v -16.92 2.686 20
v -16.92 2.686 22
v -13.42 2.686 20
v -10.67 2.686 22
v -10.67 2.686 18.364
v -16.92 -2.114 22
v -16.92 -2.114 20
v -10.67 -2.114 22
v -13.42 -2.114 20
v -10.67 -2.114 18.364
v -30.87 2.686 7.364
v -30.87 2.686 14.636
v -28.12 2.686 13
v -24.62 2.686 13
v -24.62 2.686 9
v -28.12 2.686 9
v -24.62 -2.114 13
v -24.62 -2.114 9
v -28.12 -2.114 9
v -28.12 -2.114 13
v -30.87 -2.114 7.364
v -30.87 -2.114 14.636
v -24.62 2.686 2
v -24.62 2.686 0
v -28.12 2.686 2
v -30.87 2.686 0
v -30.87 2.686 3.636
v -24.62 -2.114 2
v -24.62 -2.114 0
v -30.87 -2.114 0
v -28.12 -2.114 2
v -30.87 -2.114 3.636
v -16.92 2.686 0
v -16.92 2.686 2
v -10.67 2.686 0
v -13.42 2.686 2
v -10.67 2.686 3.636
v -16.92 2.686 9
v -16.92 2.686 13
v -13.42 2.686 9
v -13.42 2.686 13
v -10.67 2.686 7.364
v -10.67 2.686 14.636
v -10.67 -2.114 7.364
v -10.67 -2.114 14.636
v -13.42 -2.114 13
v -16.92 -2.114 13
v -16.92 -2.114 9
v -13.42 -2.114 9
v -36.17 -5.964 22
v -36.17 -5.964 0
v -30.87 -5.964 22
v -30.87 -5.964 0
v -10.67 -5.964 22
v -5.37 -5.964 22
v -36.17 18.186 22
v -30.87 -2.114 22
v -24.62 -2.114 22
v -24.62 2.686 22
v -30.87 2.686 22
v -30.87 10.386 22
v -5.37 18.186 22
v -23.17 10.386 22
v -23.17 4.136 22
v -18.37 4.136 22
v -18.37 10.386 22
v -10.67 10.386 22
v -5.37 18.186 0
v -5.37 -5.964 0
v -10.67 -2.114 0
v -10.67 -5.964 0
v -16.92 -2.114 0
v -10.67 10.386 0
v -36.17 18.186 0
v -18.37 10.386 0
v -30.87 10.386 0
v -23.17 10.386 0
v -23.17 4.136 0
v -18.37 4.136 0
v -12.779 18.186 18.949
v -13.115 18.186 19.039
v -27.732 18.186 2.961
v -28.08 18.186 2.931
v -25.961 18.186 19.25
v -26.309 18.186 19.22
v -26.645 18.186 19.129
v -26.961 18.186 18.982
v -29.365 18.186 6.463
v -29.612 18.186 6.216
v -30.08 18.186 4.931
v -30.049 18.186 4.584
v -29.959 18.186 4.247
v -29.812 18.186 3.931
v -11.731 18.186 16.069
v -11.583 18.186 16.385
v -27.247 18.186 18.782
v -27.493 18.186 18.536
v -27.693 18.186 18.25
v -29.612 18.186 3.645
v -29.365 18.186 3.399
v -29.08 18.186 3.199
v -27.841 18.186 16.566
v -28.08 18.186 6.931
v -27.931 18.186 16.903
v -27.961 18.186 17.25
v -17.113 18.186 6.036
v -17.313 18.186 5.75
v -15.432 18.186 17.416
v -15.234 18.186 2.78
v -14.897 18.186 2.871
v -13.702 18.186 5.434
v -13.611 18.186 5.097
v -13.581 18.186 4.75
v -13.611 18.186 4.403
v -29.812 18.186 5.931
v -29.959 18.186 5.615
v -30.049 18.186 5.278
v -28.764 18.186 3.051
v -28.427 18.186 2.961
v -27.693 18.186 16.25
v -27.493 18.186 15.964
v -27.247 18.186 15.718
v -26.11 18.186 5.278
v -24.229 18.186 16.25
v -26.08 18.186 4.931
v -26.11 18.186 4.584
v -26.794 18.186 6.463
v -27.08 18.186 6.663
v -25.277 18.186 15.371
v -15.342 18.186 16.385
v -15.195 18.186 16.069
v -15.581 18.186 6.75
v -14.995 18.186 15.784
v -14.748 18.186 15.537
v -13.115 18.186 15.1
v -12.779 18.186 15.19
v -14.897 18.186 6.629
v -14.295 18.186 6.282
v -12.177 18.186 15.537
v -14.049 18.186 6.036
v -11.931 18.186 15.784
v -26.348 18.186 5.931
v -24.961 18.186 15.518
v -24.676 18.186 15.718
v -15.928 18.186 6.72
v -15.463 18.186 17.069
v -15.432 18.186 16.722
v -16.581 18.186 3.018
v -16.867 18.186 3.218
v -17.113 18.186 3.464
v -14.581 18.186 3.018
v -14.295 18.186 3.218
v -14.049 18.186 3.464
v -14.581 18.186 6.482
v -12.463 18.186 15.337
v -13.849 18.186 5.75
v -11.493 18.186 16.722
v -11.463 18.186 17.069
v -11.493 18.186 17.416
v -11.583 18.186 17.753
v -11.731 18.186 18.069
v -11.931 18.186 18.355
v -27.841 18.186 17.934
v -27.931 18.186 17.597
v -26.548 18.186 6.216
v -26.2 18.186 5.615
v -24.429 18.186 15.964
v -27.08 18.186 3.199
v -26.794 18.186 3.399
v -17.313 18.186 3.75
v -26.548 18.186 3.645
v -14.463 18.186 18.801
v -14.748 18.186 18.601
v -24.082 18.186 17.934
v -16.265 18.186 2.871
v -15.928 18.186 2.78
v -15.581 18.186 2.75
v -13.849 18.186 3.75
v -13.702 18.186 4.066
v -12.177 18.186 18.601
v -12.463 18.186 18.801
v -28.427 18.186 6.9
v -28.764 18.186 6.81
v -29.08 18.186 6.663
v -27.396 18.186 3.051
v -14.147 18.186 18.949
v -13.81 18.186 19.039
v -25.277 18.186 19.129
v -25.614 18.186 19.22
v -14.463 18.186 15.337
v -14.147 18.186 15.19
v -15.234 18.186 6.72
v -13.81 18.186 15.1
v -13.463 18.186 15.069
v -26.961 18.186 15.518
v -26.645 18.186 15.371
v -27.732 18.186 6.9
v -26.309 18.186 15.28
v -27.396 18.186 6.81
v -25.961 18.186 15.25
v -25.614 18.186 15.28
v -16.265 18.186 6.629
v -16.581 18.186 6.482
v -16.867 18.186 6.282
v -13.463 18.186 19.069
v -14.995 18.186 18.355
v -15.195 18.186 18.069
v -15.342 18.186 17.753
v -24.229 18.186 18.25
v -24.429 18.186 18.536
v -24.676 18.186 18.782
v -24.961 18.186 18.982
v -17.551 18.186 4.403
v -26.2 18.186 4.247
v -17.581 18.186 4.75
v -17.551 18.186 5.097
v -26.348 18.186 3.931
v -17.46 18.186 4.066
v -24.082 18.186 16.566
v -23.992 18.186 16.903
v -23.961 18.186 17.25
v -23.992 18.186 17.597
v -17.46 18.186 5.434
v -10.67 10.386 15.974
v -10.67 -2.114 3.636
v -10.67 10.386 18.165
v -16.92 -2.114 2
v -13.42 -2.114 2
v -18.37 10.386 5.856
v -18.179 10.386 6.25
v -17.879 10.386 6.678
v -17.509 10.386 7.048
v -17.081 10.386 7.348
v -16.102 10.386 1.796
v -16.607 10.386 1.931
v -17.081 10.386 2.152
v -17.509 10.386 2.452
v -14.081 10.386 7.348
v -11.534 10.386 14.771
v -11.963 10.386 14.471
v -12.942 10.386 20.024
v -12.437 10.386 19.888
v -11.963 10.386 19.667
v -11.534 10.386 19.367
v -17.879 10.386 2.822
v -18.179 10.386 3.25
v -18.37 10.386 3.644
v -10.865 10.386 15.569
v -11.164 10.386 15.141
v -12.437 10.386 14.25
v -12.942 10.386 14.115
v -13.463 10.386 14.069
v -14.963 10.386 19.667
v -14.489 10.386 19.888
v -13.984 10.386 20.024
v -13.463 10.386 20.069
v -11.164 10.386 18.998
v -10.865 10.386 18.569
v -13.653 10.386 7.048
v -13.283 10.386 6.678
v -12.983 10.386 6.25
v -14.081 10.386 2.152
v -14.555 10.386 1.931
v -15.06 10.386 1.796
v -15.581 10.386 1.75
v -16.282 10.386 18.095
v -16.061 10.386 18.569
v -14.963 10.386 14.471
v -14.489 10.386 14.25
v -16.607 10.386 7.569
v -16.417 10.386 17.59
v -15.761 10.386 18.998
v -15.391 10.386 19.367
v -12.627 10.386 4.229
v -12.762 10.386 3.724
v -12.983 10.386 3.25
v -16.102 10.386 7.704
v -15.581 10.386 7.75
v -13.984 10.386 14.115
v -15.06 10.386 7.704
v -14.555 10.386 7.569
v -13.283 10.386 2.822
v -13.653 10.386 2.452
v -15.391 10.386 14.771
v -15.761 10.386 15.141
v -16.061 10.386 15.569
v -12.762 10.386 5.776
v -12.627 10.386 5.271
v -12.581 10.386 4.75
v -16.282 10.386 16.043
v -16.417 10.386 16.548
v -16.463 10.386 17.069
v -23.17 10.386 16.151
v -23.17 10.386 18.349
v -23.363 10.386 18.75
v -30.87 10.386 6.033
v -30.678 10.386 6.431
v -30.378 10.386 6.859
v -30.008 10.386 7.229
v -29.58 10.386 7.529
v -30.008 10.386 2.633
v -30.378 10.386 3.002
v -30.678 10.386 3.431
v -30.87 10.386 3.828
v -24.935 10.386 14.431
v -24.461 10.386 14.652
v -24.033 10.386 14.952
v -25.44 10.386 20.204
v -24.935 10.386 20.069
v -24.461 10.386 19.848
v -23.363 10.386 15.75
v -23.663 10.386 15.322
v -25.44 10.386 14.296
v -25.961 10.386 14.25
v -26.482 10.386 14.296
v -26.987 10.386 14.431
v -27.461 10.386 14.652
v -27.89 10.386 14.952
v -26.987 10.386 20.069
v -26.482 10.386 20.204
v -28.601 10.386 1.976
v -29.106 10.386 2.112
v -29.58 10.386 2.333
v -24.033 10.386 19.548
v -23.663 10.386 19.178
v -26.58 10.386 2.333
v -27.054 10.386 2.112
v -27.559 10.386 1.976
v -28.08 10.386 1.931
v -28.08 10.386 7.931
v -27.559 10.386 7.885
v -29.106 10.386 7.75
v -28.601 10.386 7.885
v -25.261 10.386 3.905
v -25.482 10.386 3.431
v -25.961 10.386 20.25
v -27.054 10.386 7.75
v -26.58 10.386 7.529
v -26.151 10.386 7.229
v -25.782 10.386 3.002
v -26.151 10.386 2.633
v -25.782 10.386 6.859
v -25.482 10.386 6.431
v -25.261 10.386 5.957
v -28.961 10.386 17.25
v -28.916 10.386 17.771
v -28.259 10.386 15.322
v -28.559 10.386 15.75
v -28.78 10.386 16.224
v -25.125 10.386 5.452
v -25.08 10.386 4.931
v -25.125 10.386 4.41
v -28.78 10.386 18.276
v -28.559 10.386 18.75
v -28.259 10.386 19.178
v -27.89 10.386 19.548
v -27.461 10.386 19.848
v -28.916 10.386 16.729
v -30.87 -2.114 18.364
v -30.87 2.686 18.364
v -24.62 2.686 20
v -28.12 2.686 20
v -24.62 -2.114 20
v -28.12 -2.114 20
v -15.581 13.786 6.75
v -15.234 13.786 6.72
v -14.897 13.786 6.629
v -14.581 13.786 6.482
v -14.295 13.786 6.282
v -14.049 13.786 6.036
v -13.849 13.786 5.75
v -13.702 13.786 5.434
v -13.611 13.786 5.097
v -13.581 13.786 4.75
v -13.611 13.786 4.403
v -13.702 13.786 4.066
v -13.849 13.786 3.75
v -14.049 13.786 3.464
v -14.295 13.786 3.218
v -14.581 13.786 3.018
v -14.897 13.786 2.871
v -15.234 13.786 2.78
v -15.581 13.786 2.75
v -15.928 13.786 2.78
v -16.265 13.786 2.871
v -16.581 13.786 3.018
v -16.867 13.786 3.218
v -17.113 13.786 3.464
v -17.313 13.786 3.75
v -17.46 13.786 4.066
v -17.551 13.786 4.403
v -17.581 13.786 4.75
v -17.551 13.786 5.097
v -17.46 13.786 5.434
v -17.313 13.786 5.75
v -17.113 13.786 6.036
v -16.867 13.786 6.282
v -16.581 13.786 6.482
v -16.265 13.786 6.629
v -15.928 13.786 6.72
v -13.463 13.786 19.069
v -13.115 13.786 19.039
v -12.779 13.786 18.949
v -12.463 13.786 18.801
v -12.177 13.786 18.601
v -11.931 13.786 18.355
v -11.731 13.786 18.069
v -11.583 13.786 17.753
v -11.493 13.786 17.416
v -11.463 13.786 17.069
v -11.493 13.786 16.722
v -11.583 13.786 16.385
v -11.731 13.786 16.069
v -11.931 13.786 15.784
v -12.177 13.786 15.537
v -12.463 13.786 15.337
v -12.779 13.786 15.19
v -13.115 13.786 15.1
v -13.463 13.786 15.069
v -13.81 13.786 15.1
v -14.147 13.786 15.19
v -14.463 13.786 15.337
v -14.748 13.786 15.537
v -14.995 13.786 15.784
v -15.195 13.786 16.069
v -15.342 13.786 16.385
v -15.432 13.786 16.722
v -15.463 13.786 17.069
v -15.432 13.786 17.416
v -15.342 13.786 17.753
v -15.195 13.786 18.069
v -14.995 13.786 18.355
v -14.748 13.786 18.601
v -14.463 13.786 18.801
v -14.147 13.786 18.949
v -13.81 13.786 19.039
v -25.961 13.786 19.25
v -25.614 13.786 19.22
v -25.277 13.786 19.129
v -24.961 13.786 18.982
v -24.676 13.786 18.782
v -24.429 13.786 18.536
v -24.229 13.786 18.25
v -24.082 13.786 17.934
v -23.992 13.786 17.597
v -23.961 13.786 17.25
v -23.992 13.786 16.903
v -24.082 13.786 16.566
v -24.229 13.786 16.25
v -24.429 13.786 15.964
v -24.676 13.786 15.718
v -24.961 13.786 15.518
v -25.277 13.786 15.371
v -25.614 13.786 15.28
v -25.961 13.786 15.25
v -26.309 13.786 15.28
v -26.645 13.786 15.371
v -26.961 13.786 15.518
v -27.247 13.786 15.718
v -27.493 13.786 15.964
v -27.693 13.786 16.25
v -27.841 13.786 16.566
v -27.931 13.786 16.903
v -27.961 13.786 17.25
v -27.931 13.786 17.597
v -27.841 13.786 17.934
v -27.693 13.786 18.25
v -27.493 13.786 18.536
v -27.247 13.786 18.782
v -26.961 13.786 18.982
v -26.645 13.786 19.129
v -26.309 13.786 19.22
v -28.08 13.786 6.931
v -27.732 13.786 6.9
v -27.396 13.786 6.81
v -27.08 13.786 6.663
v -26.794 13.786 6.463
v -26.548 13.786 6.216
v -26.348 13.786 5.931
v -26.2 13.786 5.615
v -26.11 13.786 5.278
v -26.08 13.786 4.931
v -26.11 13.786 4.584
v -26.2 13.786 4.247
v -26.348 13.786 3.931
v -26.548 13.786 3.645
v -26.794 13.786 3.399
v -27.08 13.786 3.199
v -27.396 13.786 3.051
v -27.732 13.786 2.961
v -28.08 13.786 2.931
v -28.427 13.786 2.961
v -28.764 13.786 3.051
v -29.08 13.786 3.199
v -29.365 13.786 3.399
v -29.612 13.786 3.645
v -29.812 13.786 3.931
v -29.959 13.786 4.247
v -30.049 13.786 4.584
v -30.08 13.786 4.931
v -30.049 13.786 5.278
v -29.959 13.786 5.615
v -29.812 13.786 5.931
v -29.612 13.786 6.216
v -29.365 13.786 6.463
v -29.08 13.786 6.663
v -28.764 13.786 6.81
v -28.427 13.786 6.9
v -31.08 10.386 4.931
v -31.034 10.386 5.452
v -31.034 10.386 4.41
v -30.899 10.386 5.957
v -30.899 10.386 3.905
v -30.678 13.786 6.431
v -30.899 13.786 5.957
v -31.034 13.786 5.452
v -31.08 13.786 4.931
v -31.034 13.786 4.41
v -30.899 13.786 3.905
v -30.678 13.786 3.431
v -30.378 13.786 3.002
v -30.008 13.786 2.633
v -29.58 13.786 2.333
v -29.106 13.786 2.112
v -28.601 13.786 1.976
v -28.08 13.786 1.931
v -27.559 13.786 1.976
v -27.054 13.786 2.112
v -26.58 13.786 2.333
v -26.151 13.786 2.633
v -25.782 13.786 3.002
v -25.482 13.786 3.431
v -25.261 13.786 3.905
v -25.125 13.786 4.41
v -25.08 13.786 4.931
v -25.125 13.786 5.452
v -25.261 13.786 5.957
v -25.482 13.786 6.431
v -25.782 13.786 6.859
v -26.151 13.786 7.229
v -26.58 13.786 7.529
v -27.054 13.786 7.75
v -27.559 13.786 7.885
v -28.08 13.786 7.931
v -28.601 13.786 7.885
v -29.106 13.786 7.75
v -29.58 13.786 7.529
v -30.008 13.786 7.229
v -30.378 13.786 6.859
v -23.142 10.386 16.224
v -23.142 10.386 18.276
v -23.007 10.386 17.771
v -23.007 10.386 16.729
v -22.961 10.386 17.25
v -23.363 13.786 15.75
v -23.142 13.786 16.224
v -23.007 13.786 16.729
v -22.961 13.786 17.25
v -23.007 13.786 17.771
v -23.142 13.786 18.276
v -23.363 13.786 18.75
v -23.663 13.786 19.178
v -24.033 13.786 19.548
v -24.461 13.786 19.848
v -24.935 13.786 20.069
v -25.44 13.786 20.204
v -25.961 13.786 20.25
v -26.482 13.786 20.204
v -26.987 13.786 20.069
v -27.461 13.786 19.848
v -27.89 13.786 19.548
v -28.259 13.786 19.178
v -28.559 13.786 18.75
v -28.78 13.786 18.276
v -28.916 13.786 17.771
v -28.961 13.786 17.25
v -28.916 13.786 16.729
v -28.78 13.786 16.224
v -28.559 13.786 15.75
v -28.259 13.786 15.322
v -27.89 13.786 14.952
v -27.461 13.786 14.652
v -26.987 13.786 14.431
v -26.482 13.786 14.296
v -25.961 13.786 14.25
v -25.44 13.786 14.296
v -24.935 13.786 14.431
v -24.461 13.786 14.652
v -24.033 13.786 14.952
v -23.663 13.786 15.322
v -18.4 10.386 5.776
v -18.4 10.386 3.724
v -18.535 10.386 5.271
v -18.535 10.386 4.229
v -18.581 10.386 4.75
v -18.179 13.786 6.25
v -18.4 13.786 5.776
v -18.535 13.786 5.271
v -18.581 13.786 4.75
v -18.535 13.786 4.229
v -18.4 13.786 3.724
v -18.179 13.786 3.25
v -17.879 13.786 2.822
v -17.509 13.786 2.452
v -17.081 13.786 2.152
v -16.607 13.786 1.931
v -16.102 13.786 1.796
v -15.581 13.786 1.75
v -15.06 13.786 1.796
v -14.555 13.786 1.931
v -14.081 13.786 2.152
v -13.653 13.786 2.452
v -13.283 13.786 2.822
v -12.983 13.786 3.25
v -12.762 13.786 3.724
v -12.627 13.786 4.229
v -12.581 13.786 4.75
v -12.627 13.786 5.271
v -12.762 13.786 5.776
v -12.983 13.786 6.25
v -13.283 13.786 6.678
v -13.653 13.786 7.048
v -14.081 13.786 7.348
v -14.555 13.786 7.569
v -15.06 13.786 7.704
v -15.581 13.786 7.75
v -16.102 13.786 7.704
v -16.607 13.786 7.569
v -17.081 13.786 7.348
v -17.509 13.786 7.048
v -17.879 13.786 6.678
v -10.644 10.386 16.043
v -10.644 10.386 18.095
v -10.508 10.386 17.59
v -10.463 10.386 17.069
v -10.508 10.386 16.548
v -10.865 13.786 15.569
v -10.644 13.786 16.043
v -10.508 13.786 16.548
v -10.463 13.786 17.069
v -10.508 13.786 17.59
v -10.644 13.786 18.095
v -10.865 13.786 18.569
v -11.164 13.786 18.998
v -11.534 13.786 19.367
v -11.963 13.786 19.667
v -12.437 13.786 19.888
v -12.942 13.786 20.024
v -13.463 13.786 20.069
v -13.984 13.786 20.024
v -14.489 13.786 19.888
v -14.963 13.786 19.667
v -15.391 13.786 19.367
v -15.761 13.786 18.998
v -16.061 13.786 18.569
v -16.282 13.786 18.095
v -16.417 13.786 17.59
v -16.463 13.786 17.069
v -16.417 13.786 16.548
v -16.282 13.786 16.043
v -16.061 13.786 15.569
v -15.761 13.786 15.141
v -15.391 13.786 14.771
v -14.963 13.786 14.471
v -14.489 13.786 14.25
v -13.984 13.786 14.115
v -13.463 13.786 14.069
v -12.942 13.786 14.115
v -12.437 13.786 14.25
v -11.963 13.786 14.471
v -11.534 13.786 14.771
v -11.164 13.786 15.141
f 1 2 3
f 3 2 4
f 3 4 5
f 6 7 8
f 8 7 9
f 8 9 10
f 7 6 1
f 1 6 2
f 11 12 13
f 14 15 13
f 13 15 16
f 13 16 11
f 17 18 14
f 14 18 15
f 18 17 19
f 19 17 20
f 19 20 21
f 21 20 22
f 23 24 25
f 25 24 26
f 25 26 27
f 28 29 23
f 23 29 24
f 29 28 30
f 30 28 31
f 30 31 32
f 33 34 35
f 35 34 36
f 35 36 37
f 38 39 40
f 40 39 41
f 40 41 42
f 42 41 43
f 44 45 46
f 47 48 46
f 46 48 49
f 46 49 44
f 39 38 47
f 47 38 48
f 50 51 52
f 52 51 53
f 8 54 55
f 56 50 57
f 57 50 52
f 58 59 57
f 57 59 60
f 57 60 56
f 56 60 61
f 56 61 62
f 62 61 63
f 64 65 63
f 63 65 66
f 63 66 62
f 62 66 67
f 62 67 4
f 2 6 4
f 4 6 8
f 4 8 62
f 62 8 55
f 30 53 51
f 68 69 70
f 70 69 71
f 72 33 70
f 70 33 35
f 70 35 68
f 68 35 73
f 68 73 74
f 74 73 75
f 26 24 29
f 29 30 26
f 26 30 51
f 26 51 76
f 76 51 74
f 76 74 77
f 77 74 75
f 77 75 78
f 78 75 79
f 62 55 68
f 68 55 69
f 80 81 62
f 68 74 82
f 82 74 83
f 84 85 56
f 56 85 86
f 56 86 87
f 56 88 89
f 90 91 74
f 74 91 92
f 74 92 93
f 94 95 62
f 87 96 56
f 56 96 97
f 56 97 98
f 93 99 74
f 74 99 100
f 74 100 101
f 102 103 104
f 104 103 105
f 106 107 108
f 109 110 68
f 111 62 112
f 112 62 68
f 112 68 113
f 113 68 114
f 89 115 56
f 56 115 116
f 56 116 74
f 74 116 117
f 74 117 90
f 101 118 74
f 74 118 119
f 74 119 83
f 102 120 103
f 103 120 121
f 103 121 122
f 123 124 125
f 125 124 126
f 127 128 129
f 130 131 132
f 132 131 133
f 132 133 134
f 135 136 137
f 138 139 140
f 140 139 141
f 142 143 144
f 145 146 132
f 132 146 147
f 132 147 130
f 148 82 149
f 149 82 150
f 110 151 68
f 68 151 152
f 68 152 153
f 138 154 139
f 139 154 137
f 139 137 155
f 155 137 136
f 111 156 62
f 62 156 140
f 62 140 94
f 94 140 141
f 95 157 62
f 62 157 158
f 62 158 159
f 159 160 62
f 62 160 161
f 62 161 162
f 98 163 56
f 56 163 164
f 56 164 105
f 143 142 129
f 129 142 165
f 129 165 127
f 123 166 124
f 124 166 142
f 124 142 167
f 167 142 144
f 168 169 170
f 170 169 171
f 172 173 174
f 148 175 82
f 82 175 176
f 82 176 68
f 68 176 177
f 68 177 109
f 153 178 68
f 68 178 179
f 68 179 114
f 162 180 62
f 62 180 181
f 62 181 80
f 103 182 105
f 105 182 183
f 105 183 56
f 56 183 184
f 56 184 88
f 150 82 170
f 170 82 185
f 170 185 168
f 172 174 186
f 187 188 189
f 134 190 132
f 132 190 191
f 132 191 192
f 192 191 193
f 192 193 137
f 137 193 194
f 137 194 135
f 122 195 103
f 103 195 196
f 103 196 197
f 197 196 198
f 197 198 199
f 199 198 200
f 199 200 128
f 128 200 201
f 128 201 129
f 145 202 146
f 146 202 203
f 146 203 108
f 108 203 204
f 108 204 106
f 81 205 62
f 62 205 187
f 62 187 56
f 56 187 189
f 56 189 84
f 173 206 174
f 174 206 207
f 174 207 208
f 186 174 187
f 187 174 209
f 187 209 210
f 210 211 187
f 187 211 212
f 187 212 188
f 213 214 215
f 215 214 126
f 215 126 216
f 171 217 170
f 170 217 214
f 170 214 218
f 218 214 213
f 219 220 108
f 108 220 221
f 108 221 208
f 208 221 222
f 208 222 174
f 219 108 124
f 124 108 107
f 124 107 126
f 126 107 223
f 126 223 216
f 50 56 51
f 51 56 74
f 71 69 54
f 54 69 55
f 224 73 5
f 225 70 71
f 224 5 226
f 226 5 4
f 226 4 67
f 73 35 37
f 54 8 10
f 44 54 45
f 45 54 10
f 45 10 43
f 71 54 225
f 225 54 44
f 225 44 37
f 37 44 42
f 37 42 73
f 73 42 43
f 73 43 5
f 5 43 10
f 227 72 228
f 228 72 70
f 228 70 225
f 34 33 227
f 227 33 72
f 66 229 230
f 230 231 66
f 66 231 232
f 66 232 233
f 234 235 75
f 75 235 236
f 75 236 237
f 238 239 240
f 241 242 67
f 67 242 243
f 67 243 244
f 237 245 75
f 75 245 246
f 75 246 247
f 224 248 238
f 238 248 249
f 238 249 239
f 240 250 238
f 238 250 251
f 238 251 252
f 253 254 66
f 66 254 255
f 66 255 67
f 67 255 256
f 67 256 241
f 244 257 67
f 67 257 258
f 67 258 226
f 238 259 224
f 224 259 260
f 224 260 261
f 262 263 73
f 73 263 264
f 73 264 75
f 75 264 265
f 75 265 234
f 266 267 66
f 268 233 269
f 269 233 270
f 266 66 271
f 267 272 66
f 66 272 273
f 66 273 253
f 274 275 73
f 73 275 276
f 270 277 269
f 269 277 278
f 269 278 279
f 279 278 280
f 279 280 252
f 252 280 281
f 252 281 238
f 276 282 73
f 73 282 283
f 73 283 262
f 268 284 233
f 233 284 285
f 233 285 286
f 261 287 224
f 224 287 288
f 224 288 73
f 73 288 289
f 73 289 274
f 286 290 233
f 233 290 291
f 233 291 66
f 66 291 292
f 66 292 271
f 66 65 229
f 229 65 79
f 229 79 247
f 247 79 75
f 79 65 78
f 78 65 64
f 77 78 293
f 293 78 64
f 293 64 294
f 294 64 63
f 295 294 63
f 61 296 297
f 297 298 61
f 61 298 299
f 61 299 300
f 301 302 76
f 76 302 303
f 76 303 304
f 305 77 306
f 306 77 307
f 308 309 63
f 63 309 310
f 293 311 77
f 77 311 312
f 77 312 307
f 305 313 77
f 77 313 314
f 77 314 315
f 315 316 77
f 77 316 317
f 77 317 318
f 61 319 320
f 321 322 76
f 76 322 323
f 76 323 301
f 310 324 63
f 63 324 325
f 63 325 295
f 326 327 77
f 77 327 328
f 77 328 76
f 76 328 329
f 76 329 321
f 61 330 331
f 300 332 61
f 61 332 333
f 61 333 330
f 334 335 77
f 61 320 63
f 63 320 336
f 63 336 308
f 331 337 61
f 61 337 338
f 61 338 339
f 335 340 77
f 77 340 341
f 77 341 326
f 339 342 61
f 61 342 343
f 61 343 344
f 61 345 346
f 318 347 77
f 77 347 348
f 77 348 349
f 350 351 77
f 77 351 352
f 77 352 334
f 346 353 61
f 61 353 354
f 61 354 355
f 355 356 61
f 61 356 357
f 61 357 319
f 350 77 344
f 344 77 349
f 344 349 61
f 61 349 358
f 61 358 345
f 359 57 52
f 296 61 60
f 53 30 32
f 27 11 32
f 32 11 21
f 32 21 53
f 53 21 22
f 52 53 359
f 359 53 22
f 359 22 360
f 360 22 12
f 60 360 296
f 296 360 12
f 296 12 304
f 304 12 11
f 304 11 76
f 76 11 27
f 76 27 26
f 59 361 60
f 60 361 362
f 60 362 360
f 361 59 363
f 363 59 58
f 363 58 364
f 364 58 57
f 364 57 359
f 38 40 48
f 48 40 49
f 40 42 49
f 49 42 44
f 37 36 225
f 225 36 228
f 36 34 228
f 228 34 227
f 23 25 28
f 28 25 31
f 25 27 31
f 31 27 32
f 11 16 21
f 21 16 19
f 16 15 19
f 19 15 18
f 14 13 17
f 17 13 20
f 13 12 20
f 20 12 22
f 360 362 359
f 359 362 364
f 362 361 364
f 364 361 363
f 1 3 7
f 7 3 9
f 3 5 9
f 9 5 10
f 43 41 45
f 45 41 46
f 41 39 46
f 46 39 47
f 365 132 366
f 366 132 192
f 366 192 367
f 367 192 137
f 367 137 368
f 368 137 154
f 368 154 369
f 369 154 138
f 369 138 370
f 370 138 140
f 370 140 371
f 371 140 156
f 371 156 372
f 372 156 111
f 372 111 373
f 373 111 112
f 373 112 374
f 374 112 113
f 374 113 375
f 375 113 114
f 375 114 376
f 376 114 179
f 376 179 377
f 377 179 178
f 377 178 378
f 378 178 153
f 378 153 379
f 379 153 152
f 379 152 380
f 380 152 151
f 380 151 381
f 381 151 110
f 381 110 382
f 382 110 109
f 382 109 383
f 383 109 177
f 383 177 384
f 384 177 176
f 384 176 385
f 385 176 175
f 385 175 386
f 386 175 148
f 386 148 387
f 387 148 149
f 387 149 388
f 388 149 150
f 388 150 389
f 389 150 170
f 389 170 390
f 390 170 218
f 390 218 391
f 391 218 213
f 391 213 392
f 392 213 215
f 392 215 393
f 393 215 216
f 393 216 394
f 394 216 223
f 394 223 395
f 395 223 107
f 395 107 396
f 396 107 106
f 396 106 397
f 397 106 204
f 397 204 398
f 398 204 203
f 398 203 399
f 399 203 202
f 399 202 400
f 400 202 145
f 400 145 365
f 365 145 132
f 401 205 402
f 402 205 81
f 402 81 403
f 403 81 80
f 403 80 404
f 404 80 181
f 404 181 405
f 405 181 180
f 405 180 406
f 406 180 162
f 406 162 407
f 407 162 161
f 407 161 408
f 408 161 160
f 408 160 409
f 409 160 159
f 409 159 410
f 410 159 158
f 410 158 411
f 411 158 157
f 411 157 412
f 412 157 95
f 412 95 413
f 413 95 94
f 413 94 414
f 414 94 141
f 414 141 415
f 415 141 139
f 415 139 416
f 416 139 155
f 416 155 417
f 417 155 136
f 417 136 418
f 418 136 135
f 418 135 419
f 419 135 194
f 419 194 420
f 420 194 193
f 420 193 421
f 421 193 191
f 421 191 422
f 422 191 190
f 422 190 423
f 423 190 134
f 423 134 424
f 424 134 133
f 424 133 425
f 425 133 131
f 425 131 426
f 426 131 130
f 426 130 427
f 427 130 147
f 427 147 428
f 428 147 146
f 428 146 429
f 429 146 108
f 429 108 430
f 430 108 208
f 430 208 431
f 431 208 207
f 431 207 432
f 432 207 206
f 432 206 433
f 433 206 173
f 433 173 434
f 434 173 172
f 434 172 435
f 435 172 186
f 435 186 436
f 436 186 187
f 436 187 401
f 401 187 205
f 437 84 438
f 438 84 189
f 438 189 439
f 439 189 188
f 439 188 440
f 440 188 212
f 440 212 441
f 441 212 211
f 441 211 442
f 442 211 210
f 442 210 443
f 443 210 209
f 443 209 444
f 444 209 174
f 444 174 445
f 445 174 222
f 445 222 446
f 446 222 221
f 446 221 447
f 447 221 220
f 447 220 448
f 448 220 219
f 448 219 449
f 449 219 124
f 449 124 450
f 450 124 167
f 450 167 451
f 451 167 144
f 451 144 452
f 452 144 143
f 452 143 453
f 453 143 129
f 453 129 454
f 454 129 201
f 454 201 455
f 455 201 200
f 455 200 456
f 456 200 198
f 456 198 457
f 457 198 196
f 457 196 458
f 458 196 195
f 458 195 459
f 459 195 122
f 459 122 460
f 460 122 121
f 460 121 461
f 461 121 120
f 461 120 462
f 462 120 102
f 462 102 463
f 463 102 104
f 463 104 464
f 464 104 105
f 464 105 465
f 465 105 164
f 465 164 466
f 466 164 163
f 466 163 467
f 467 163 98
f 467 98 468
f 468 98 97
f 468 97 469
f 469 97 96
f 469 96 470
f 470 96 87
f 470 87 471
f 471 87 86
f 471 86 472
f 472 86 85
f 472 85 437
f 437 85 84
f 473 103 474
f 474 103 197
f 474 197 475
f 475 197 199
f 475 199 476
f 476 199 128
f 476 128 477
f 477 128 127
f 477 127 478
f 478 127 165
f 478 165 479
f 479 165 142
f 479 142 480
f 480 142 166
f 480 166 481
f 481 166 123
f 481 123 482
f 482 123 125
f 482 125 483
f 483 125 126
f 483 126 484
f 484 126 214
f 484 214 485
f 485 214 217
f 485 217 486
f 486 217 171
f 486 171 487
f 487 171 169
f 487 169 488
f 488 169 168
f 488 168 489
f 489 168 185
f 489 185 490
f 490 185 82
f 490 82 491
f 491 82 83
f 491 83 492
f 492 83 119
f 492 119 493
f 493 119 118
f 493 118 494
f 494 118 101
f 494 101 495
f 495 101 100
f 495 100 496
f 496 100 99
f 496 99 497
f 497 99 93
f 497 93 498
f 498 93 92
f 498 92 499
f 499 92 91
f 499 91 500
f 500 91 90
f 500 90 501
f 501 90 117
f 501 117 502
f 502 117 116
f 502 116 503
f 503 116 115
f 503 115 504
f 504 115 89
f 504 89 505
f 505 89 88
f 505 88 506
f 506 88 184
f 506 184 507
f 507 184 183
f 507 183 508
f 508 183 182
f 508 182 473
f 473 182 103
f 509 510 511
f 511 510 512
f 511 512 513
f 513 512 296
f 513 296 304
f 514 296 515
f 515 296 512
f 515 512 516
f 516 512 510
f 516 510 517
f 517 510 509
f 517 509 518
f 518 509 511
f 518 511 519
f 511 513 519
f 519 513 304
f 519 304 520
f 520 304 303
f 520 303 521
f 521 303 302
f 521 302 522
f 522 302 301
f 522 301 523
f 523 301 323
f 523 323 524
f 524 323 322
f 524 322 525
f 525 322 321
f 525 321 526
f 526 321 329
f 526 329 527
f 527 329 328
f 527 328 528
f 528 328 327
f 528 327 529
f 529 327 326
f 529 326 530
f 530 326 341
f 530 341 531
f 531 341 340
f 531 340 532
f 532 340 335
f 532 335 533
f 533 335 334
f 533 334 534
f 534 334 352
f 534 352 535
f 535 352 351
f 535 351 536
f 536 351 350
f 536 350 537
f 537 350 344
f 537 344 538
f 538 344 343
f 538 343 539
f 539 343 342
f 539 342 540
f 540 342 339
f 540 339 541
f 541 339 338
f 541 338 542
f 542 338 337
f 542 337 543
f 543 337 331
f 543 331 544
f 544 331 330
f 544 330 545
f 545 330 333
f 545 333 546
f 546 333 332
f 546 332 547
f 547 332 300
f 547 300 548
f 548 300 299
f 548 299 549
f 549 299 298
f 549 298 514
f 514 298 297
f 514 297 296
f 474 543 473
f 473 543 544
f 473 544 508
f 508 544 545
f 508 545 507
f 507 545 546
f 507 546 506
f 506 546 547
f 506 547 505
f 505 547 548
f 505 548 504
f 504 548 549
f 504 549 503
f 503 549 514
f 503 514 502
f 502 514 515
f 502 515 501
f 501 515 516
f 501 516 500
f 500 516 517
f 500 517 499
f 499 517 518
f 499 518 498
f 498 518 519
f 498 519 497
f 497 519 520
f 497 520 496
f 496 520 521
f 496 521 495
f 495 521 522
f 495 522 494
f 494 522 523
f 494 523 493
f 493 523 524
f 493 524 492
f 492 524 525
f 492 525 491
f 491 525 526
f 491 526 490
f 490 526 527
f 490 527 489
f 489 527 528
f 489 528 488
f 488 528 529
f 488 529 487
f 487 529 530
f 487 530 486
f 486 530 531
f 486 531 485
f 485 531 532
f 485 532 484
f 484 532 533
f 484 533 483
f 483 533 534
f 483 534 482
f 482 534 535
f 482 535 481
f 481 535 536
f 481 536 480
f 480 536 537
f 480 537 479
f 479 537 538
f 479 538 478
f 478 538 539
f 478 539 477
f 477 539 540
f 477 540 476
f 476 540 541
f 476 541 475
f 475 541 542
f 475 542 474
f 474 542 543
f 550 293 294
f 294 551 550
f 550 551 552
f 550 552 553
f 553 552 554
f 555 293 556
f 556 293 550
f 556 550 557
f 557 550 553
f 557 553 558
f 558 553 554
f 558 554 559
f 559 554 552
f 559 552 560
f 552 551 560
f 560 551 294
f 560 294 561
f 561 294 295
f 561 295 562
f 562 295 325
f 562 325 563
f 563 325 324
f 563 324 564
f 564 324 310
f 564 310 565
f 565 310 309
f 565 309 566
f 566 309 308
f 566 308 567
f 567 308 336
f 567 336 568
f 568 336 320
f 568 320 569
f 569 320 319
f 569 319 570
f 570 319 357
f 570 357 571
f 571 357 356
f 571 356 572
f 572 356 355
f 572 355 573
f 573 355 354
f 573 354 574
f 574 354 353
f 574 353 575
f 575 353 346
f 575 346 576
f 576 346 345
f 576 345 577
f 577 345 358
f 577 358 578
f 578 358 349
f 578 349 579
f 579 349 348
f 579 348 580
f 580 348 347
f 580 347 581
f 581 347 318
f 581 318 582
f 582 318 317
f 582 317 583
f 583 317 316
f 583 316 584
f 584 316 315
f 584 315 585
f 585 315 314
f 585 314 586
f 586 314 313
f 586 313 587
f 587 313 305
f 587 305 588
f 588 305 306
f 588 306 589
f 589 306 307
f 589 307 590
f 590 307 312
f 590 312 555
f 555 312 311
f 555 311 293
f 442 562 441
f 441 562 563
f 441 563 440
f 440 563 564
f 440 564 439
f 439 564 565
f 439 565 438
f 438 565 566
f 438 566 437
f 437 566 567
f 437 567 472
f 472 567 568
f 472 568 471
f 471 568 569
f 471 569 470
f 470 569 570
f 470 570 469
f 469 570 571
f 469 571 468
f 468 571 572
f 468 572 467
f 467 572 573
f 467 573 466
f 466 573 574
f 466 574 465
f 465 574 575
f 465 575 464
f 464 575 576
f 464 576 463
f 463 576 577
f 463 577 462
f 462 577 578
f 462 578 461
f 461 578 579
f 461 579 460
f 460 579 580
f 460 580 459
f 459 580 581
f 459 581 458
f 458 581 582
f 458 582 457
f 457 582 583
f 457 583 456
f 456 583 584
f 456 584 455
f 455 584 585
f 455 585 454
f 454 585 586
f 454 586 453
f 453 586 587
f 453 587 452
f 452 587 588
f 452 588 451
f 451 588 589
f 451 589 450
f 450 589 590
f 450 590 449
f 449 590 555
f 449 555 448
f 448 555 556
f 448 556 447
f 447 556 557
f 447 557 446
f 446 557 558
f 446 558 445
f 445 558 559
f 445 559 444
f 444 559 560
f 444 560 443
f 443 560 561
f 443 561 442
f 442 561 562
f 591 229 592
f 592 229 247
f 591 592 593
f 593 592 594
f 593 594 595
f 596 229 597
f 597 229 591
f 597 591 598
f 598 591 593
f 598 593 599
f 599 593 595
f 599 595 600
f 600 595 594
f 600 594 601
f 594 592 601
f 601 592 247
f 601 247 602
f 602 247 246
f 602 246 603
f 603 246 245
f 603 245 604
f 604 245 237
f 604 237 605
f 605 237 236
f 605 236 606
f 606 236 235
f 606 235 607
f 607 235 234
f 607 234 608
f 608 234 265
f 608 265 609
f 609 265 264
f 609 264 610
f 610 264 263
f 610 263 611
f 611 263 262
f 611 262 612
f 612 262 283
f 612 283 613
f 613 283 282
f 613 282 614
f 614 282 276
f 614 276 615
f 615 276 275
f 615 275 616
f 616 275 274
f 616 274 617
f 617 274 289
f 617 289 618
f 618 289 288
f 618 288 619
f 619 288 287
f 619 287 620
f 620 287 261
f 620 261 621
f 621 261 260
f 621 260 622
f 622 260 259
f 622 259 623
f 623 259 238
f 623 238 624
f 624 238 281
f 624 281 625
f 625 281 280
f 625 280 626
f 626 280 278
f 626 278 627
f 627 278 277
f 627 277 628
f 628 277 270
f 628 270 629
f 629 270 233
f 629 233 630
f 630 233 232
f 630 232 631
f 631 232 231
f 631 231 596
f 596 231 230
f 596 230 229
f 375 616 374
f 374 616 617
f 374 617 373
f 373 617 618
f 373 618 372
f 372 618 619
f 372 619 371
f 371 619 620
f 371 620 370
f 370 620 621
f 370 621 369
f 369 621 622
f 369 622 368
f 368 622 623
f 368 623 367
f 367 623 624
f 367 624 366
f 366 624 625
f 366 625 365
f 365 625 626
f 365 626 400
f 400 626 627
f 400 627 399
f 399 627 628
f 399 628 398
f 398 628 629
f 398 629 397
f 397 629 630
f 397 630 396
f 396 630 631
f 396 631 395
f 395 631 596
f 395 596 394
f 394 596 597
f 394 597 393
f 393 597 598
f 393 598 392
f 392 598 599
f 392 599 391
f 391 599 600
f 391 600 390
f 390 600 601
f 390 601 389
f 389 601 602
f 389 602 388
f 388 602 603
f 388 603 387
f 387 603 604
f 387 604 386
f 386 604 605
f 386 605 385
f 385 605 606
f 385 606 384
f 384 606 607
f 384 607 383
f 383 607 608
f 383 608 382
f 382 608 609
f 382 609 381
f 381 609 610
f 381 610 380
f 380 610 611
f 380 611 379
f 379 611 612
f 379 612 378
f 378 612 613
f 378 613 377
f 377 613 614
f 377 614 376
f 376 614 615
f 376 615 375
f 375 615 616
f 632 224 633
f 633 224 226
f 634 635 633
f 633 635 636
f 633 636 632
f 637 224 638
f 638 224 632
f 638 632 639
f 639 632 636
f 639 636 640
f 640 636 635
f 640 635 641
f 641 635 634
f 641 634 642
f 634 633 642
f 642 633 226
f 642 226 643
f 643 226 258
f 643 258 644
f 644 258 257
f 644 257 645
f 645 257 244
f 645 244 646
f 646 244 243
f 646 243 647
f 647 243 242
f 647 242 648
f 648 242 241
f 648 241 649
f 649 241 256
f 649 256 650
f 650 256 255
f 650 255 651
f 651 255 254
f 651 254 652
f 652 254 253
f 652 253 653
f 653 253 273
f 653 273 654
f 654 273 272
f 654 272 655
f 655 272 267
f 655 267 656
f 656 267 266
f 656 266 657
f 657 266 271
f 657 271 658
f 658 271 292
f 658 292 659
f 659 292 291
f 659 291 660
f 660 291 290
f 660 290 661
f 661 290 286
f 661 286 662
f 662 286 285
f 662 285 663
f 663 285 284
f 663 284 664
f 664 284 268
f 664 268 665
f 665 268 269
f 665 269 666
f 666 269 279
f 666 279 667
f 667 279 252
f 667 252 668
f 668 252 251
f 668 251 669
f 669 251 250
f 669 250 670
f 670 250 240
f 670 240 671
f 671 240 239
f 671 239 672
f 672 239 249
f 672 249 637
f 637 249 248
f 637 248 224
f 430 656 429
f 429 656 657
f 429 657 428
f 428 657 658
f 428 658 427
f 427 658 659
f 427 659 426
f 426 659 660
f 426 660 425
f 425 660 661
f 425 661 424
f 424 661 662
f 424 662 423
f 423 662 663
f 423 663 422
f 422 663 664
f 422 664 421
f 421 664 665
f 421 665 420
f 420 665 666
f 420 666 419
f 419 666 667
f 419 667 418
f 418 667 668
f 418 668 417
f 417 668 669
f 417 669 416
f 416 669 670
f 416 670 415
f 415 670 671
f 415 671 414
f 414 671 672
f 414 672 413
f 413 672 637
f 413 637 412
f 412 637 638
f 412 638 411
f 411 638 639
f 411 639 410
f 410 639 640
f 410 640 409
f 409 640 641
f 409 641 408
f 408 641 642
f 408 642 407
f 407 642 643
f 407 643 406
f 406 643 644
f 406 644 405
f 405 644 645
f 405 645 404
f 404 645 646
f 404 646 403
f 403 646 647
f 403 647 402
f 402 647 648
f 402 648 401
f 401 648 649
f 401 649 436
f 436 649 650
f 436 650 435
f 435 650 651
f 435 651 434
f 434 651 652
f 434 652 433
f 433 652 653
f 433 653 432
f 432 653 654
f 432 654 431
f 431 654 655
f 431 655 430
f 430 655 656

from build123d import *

# Parameters (mm, degrees)
ESQUISSE1_W                   = 30.8
ESQUISSE1_H                   = 24.15
BOSS_EXTRU_1_DEPTH            = 22
ENL_V_START                   = -22
ENL_V_MAT_EXTRU_2_DEPTH       = 22
ENL_V_MAT_EXTRU_14_DEPTH      = 47.950397903
ENL_V_MAT_EXTRU_14_DEPTH_BACK = 4.8
ENL_V_MAT_EXTRU_19_DEPTH      = 4.8
ENL_V_MAT_EXTRU_20_DEPTH      = 4.8
ENL_V_MAT_EXTRU_21_DEPTH      = 4.8
ESQUISSE17_R                  = 2
ENL_V_MAT_EXTRU_22_DEPTH      = 4.4
ESQUISSE18_R                  = 3
ENL_V_MAT_EXTRU_24_DEPTH      = 3.4
ESQUISSE19_R                  = 3
ENL_V_MAT_EXTRU_29_DEPTH      = 3.4
ESQUISSE22_R                  = 3
ENL_V_MAT_EXTRU_30_DEPTH      = 3.4
ESQUISSE23_R                  = 3
ENL_V_MAT_EXTRU_31_DEPTH      = 3.4


# Read off the part's stored shape, not the designer's step: Enlèv. mat.-Extru.2
with BuildPart() as part:
    # Esquisse1 → Boss.-Extru.1 (new body)
    with BuildSketch(Plane.XY):
        with Locations((-20.769736842, 6.111184211)):
            Rectangle(ESQUISSE1_W, ESQUISSE1_H)
    extrude(amount=BOSS_EXTRU_1_DEPTH)

    # Enlèv. mat.-Extru.2 outline → Enlèv. mat.-Extru.2 (cut)
    with BuildSketch(Plane.XY.offset(22).offset(ENL_V_START)):
        Polygon((-30.869736842, -5.963815789), (-10.669736842, -5.963815789), (-10.669736842, -2.113815789), (-16.919736842, -2.113815789), (-16.919736842, 2.686184211), (-10.669736842, 2.686184211), (-10.669736842, 10.386184211), (-18.369736842, 10.386184211), (-18.369736842, 4.136184211), (-23.169736842, 4.136184211), (-23.169736842, 10.386184211), (-30.869736842, 10.386184211), (-30.869736842, 2.686184211), (-24.619736842, 2.686184211), (-24.619736842, -2.113815789), (-30.869736842, -2.113815789), align=None)
    extrude(amount=ENL_V_MAT_EXTRU_2_DEPTH, mode=Mode.SUBTRACT)

    # Esquisse12 → Enlèv. mat.-Extru.14 (cut, two sides: drawn at the far end of the back side and taken through both)
    with BuildSketch(Plane(origin=(0, -2.113815789, 0), x_dir=(-1, 0, 0), z_dir=(0, -1, 0)).offset(-ENL_V_MAT_EXTRU_14_DEPTH_BACK)):
        Polygon((16.919736842, -9), (16.919736842, -2), (13.419736842, -2), (10.669736842, -3.636306817), (10.669736842, -7.363693183), (13.419736842, -9), align=None)
    extrude(amount=ENL_V_MAT_EXTRU_14_DEPTH + ENL_V_MAT_EXTRU_14_DEPTH_BACK, mode=Mode.SUBTRACT)

    # Esquisse13 → Enlèv. mat.-Extru.19 (cut)
    with BuildSketch(Plane(origin=(0, -2.113815789, 0), x_dir=(-1, 0, 0), z_dir=(0, -1, 0))):
        Polygon((24.619736842, -2), (28.119736842, -2), (30.869736842, -3.636306817), (30.869736842, -7.363693183), (28.119736842, -9), (24.619736842, -9), align=None)
    extrude(amount=-ENL_V_MAT_EXTRU_19_DEPTH, mode=Mode.SUBTRACT)

    # Esquisse14 → Enlèv. mat.-Extru.20 (cut)
    with BuildSketch(Plane(origin=(0, -2.113815789, 0), x_dir=(-1, 0, 0), z_dir=(0, -1, 0))):
        Polygon((24.619736842, -20), (28.119736842, -20), (30.869736842, -18.363693183), (30.869736842, -14.636306817), (28.119736842, -13), (24.619736842, -13), align=None)
    extrude(amount=-ENL_V_MAT_EXTRU_20_DEPTH, mode=Mode.SUBTRACT)

    # Esquisse16 → Enlèv. mat.-Extru.21 (cut)
    with BuildSketch(Plane(origin=(0, -2.113815789, 0), x_dir=(-1, 0, 0), z_dir=(0, -1, 0))):
        Polygon((16.919736842, -20), (13.419736842, -20), (10.669736842, -18.363693183), (10.669736842, -14.636306817), (13.419736842, -13), (16.919736842, -13), align=None)
    extrude(amount=-ENL_V_MAT_EXTRU_21_DEPTH, mode=Mode.SUBTRACT)

    # Esquisse17 → Enlèv. mat.-Extru.22 (cut)
    with BuildSketch(Plane(origin=(0, 18.186184211, 0), x_dir=(1, 0, 0), z_dir=(0, 1, 0))):
        with Locations(Location((-15.581044692, -4.75, 0), (0, 0, 270))):
            Circle(ESQUISSE17_R)
        with Locations(Location((-13.462622288, -17.069183679, 0), (0, 0, 270))):
            Circle(ESQUISSE17_R)
        with Locations(Location((-25.961314438, -17.25, 0), (0, 0, 270))):
            Circle(ESQUISSE17_R)
        with Locations(Location((-28.079736842, -4.930816321, 0), (0, 0, 270))):
            Circle(ESQUISSE17_R)
    extrude(amount=-ENL_V_MAT_EXTRU_22_DEPTH, mode=Mode.SUBTRACT)

    # Esquisse18 → Enlèv. mat.-Extru.24 (cut)
    with BuildSketch(Plane(origin=(0, 13.786184211, 0), x_dir=(1, 0, 0), z_dir=(0, 1, 0))):
        with Locations(Location((-28.079736842, -4.930816321, 0), (0, 0, 270))):
            Circle(ESQUISSE18_R)
    extrude(amount=-ENL_V_MAT_EXTRU_24_DEPTH, mode=Mode.SUBTRACT)

    # Esquisse19 → Enlèv. mat.-Extru.29 (cut)
    with BuildSketch(Plane(origin=(0, 13.786184211, 0), x_dir=(1, 0, 0), z_dir=(0, 1, 0))):
        with Locations(Location((-25.961314438, -17.25, 0), (0, 0, 270))):
            Circle(ESQUISSE19_R)
    extrude(amount=-ENL_V_MAT_EXTRU_29_DEPTH, mode=Mode.SUBTRACT)

    # Esquisse22 → Enlèv. mat.-Extru.30 (cut)
    with BuildSketch(Plane(origin=(0, 13.786184211, 0), x_dir=(1, 0, 0), z_dir=(0, 1, 0))):
        with Locations(Location((-15.581044692, -4.75, 0), (0, 0, 270))):
            Circle(ESQUISSE22_R)
    extrude(amount=-ENL_V_MAT_EXTRU_30_DEPTH, mode=Mode.SUBTRACT)

    # Esquisse23 → Enlèv. mat.-Extru.31 (cut)
    with BuildSketch(Plane(origin=(0, 13.786184211, 0), x_dir=(1, 0, 0), z_dir=(0, 1, 0))):
        with Locations(Location((-13.462622288, -17.069183679, 0), (0, 0, 270))):
            Circle(ESQUISSE23_R)
    extrude(amount=-ENL_V_MAT_EXTRU_31_DEPTH, mode=Mode.SUBTRACT)


solid = part.part
